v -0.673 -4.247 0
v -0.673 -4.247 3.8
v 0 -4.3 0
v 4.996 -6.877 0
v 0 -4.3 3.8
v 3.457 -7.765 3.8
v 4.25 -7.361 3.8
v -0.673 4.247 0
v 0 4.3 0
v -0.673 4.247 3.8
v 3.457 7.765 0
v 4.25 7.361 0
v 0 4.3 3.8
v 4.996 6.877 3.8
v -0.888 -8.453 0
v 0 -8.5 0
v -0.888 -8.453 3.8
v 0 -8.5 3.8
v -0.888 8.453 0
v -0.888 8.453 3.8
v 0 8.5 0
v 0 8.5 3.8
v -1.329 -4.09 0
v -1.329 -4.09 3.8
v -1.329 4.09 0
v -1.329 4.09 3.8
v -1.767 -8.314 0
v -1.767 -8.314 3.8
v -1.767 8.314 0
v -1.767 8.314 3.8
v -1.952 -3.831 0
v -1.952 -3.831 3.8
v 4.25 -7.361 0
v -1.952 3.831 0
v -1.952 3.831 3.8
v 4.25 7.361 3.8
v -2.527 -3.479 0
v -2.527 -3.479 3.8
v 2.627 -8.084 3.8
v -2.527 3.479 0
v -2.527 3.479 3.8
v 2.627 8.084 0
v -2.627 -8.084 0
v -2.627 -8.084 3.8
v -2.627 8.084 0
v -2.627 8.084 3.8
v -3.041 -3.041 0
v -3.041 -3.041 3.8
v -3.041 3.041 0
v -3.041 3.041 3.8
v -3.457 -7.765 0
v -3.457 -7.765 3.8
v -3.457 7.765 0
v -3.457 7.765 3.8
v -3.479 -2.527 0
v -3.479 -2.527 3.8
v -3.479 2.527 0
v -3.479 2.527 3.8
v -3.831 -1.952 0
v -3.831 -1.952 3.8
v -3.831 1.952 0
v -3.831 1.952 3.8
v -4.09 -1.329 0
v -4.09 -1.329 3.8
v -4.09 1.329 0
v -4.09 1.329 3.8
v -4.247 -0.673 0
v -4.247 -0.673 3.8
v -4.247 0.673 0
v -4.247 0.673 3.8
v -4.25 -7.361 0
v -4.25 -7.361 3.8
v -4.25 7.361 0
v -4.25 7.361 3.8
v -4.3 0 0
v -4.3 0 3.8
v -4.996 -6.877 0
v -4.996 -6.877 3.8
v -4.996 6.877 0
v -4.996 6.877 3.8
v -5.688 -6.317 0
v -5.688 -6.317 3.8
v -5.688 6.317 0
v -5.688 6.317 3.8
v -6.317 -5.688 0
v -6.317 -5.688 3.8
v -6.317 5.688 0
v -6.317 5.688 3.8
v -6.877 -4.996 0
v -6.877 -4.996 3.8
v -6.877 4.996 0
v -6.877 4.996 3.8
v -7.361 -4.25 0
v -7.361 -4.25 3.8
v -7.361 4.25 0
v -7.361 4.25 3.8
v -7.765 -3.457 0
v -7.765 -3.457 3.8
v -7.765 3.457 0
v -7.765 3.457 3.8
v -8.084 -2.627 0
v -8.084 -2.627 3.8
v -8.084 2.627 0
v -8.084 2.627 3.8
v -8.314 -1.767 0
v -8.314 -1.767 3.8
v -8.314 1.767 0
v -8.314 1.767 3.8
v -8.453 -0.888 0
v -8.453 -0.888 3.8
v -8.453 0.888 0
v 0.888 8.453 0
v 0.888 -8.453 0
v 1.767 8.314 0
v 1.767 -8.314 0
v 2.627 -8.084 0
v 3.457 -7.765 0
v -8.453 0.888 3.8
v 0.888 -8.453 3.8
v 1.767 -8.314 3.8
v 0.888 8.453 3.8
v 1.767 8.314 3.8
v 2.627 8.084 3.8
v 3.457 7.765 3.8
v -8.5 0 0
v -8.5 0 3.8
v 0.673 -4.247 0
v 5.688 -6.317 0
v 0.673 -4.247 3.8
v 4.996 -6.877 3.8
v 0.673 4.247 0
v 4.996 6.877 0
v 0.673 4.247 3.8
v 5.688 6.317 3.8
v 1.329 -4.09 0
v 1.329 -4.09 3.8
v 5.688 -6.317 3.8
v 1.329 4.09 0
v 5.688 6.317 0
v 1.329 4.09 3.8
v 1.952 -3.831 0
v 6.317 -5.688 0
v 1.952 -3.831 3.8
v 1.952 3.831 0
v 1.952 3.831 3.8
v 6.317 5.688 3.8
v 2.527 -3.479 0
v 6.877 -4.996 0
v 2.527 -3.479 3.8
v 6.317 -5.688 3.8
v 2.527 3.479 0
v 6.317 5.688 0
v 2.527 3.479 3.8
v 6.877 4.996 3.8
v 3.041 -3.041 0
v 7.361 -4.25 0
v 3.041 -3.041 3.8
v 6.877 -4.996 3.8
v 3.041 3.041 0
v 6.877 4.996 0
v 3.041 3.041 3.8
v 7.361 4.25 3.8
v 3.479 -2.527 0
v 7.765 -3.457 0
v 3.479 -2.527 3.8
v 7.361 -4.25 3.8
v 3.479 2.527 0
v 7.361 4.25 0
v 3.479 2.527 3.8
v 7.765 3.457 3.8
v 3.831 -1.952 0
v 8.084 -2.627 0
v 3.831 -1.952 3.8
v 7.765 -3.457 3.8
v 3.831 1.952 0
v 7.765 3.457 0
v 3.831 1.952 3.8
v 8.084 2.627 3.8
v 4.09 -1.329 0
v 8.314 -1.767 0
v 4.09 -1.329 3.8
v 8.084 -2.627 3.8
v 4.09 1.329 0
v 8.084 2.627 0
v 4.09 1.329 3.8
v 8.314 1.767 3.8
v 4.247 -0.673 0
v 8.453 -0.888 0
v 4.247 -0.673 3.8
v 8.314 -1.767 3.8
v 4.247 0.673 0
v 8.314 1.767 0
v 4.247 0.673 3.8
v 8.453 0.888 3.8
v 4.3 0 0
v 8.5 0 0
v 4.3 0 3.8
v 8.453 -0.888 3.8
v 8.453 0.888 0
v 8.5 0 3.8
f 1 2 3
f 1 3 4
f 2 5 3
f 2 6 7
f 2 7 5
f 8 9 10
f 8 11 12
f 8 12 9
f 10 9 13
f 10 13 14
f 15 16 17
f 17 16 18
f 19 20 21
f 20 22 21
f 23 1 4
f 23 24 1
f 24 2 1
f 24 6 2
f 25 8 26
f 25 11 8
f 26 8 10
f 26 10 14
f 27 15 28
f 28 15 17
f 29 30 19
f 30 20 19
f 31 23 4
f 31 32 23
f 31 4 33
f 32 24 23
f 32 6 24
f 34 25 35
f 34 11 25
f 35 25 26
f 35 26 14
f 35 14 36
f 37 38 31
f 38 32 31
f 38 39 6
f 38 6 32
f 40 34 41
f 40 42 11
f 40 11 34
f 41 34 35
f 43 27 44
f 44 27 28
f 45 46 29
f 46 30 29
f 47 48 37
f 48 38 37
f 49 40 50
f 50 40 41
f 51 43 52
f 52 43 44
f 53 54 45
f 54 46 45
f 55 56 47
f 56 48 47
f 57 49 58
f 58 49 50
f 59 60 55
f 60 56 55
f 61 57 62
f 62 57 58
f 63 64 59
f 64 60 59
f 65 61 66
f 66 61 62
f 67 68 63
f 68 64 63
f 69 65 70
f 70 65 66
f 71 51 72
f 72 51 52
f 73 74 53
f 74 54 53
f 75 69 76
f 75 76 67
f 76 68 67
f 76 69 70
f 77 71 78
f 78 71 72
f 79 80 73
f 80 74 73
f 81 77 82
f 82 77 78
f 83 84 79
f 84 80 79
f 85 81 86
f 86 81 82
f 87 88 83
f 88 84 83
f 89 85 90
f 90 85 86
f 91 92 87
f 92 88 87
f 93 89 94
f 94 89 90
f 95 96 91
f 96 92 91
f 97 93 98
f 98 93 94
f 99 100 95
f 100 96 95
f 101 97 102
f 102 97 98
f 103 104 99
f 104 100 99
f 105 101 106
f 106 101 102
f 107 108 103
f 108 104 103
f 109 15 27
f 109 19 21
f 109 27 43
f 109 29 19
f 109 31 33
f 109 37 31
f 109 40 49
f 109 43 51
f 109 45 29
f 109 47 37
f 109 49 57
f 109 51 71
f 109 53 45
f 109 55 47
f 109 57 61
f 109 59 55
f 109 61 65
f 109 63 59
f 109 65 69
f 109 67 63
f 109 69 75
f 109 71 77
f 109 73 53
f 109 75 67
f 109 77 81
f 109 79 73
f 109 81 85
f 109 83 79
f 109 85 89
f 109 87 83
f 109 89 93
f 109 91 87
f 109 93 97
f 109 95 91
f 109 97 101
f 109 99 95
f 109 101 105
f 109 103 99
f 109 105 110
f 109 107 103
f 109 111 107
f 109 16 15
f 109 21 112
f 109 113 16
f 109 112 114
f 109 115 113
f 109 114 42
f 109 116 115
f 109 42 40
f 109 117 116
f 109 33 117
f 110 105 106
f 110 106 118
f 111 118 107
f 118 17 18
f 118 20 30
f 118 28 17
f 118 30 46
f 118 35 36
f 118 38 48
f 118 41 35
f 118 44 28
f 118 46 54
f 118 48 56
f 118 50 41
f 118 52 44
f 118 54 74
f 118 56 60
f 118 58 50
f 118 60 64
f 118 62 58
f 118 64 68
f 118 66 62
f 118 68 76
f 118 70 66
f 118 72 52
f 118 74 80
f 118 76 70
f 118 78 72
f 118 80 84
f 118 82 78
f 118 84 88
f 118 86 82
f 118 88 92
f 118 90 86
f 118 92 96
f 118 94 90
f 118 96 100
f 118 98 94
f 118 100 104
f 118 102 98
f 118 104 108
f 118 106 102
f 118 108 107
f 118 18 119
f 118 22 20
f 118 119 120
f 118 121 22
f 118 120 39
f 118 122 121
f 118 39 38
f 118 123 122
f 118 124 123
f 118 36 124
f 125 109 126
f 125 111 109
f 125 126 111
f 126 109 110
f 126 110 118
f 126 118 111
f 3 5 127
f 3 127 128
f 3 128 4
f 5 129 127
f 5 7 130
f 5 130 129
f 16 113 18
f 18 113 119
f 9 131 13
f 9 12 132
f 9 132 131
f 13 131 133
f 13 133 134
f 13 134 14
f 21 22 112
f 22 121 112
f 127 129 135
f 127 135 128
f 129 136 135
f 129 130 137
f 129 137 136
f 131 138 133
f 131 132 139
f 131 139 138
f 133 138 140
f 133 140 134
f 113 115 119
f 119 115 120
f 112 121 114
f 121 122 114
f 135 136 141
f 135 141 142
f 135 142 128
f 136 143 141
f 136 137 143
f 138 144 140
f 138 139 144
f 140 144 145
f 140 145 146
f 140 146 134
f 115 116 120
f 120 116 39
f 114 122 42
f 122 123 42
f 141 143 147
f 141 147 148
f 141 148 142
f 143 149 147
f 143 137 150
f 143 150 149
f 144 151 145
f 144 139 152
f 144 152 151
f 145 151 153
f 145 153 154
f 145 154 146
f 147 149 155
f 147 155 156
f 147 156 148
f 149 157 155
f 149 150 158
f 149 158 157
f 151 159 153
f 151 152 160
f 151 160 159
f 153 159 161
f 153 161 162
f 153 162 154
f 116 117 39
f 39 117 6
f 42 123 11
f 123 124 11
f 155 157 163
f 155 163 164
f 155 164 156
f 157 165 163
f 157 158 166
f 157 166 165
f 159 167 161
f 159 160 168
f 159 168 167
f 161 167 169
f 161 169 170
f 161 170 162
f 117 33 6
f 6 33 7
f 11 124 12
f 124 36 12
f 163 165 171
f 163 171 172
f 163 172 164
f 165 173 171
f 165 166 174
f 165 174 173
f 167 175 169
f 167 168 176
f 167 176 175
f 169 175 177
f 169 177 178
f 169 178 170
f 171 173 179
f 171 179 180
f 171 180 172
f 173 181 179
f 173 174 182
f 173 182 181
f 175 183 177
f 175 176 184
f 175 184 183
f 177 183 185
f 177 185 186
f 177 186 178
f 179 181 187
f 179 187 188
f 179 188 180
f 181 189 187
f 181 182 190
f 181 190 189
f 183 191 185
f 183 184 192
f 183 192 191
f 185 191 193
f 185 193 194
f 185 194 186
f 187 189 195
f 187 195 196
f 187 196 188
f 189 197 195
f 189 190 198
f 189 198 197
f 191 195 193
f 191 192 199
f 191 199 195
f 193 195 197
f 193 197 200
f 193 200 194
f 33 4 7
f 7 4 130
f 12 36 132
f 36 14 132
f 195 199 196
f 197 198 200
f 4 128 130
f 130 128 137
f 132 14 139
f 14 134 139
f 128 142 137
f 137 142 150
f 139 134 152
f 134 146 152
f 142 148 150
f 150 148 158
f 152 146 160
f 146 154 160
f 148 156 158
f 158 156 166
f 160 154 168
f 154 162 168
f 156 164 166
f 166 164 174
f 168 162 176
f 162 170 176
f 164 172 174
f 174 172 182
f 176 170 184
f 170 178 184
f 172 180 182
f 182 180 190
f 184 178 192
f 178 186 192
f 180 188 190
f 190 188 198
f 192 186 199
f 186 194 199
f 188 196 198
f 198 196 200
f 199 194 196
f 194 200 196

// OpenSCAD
// RebeliX
//
// extruder washer
// GNU GPL v3
// Martin Neruda
// http://www.reprap4u.cz

//height = 3.2;
//height = 2;
//height = 3.5;
height = 3.8;

difference(){
	cylinder(r=8.5, h=height, $fn=60);
	translate([0,0,-0.1]) cylinder(r=4.3, h=4, $fn=40);
}	
